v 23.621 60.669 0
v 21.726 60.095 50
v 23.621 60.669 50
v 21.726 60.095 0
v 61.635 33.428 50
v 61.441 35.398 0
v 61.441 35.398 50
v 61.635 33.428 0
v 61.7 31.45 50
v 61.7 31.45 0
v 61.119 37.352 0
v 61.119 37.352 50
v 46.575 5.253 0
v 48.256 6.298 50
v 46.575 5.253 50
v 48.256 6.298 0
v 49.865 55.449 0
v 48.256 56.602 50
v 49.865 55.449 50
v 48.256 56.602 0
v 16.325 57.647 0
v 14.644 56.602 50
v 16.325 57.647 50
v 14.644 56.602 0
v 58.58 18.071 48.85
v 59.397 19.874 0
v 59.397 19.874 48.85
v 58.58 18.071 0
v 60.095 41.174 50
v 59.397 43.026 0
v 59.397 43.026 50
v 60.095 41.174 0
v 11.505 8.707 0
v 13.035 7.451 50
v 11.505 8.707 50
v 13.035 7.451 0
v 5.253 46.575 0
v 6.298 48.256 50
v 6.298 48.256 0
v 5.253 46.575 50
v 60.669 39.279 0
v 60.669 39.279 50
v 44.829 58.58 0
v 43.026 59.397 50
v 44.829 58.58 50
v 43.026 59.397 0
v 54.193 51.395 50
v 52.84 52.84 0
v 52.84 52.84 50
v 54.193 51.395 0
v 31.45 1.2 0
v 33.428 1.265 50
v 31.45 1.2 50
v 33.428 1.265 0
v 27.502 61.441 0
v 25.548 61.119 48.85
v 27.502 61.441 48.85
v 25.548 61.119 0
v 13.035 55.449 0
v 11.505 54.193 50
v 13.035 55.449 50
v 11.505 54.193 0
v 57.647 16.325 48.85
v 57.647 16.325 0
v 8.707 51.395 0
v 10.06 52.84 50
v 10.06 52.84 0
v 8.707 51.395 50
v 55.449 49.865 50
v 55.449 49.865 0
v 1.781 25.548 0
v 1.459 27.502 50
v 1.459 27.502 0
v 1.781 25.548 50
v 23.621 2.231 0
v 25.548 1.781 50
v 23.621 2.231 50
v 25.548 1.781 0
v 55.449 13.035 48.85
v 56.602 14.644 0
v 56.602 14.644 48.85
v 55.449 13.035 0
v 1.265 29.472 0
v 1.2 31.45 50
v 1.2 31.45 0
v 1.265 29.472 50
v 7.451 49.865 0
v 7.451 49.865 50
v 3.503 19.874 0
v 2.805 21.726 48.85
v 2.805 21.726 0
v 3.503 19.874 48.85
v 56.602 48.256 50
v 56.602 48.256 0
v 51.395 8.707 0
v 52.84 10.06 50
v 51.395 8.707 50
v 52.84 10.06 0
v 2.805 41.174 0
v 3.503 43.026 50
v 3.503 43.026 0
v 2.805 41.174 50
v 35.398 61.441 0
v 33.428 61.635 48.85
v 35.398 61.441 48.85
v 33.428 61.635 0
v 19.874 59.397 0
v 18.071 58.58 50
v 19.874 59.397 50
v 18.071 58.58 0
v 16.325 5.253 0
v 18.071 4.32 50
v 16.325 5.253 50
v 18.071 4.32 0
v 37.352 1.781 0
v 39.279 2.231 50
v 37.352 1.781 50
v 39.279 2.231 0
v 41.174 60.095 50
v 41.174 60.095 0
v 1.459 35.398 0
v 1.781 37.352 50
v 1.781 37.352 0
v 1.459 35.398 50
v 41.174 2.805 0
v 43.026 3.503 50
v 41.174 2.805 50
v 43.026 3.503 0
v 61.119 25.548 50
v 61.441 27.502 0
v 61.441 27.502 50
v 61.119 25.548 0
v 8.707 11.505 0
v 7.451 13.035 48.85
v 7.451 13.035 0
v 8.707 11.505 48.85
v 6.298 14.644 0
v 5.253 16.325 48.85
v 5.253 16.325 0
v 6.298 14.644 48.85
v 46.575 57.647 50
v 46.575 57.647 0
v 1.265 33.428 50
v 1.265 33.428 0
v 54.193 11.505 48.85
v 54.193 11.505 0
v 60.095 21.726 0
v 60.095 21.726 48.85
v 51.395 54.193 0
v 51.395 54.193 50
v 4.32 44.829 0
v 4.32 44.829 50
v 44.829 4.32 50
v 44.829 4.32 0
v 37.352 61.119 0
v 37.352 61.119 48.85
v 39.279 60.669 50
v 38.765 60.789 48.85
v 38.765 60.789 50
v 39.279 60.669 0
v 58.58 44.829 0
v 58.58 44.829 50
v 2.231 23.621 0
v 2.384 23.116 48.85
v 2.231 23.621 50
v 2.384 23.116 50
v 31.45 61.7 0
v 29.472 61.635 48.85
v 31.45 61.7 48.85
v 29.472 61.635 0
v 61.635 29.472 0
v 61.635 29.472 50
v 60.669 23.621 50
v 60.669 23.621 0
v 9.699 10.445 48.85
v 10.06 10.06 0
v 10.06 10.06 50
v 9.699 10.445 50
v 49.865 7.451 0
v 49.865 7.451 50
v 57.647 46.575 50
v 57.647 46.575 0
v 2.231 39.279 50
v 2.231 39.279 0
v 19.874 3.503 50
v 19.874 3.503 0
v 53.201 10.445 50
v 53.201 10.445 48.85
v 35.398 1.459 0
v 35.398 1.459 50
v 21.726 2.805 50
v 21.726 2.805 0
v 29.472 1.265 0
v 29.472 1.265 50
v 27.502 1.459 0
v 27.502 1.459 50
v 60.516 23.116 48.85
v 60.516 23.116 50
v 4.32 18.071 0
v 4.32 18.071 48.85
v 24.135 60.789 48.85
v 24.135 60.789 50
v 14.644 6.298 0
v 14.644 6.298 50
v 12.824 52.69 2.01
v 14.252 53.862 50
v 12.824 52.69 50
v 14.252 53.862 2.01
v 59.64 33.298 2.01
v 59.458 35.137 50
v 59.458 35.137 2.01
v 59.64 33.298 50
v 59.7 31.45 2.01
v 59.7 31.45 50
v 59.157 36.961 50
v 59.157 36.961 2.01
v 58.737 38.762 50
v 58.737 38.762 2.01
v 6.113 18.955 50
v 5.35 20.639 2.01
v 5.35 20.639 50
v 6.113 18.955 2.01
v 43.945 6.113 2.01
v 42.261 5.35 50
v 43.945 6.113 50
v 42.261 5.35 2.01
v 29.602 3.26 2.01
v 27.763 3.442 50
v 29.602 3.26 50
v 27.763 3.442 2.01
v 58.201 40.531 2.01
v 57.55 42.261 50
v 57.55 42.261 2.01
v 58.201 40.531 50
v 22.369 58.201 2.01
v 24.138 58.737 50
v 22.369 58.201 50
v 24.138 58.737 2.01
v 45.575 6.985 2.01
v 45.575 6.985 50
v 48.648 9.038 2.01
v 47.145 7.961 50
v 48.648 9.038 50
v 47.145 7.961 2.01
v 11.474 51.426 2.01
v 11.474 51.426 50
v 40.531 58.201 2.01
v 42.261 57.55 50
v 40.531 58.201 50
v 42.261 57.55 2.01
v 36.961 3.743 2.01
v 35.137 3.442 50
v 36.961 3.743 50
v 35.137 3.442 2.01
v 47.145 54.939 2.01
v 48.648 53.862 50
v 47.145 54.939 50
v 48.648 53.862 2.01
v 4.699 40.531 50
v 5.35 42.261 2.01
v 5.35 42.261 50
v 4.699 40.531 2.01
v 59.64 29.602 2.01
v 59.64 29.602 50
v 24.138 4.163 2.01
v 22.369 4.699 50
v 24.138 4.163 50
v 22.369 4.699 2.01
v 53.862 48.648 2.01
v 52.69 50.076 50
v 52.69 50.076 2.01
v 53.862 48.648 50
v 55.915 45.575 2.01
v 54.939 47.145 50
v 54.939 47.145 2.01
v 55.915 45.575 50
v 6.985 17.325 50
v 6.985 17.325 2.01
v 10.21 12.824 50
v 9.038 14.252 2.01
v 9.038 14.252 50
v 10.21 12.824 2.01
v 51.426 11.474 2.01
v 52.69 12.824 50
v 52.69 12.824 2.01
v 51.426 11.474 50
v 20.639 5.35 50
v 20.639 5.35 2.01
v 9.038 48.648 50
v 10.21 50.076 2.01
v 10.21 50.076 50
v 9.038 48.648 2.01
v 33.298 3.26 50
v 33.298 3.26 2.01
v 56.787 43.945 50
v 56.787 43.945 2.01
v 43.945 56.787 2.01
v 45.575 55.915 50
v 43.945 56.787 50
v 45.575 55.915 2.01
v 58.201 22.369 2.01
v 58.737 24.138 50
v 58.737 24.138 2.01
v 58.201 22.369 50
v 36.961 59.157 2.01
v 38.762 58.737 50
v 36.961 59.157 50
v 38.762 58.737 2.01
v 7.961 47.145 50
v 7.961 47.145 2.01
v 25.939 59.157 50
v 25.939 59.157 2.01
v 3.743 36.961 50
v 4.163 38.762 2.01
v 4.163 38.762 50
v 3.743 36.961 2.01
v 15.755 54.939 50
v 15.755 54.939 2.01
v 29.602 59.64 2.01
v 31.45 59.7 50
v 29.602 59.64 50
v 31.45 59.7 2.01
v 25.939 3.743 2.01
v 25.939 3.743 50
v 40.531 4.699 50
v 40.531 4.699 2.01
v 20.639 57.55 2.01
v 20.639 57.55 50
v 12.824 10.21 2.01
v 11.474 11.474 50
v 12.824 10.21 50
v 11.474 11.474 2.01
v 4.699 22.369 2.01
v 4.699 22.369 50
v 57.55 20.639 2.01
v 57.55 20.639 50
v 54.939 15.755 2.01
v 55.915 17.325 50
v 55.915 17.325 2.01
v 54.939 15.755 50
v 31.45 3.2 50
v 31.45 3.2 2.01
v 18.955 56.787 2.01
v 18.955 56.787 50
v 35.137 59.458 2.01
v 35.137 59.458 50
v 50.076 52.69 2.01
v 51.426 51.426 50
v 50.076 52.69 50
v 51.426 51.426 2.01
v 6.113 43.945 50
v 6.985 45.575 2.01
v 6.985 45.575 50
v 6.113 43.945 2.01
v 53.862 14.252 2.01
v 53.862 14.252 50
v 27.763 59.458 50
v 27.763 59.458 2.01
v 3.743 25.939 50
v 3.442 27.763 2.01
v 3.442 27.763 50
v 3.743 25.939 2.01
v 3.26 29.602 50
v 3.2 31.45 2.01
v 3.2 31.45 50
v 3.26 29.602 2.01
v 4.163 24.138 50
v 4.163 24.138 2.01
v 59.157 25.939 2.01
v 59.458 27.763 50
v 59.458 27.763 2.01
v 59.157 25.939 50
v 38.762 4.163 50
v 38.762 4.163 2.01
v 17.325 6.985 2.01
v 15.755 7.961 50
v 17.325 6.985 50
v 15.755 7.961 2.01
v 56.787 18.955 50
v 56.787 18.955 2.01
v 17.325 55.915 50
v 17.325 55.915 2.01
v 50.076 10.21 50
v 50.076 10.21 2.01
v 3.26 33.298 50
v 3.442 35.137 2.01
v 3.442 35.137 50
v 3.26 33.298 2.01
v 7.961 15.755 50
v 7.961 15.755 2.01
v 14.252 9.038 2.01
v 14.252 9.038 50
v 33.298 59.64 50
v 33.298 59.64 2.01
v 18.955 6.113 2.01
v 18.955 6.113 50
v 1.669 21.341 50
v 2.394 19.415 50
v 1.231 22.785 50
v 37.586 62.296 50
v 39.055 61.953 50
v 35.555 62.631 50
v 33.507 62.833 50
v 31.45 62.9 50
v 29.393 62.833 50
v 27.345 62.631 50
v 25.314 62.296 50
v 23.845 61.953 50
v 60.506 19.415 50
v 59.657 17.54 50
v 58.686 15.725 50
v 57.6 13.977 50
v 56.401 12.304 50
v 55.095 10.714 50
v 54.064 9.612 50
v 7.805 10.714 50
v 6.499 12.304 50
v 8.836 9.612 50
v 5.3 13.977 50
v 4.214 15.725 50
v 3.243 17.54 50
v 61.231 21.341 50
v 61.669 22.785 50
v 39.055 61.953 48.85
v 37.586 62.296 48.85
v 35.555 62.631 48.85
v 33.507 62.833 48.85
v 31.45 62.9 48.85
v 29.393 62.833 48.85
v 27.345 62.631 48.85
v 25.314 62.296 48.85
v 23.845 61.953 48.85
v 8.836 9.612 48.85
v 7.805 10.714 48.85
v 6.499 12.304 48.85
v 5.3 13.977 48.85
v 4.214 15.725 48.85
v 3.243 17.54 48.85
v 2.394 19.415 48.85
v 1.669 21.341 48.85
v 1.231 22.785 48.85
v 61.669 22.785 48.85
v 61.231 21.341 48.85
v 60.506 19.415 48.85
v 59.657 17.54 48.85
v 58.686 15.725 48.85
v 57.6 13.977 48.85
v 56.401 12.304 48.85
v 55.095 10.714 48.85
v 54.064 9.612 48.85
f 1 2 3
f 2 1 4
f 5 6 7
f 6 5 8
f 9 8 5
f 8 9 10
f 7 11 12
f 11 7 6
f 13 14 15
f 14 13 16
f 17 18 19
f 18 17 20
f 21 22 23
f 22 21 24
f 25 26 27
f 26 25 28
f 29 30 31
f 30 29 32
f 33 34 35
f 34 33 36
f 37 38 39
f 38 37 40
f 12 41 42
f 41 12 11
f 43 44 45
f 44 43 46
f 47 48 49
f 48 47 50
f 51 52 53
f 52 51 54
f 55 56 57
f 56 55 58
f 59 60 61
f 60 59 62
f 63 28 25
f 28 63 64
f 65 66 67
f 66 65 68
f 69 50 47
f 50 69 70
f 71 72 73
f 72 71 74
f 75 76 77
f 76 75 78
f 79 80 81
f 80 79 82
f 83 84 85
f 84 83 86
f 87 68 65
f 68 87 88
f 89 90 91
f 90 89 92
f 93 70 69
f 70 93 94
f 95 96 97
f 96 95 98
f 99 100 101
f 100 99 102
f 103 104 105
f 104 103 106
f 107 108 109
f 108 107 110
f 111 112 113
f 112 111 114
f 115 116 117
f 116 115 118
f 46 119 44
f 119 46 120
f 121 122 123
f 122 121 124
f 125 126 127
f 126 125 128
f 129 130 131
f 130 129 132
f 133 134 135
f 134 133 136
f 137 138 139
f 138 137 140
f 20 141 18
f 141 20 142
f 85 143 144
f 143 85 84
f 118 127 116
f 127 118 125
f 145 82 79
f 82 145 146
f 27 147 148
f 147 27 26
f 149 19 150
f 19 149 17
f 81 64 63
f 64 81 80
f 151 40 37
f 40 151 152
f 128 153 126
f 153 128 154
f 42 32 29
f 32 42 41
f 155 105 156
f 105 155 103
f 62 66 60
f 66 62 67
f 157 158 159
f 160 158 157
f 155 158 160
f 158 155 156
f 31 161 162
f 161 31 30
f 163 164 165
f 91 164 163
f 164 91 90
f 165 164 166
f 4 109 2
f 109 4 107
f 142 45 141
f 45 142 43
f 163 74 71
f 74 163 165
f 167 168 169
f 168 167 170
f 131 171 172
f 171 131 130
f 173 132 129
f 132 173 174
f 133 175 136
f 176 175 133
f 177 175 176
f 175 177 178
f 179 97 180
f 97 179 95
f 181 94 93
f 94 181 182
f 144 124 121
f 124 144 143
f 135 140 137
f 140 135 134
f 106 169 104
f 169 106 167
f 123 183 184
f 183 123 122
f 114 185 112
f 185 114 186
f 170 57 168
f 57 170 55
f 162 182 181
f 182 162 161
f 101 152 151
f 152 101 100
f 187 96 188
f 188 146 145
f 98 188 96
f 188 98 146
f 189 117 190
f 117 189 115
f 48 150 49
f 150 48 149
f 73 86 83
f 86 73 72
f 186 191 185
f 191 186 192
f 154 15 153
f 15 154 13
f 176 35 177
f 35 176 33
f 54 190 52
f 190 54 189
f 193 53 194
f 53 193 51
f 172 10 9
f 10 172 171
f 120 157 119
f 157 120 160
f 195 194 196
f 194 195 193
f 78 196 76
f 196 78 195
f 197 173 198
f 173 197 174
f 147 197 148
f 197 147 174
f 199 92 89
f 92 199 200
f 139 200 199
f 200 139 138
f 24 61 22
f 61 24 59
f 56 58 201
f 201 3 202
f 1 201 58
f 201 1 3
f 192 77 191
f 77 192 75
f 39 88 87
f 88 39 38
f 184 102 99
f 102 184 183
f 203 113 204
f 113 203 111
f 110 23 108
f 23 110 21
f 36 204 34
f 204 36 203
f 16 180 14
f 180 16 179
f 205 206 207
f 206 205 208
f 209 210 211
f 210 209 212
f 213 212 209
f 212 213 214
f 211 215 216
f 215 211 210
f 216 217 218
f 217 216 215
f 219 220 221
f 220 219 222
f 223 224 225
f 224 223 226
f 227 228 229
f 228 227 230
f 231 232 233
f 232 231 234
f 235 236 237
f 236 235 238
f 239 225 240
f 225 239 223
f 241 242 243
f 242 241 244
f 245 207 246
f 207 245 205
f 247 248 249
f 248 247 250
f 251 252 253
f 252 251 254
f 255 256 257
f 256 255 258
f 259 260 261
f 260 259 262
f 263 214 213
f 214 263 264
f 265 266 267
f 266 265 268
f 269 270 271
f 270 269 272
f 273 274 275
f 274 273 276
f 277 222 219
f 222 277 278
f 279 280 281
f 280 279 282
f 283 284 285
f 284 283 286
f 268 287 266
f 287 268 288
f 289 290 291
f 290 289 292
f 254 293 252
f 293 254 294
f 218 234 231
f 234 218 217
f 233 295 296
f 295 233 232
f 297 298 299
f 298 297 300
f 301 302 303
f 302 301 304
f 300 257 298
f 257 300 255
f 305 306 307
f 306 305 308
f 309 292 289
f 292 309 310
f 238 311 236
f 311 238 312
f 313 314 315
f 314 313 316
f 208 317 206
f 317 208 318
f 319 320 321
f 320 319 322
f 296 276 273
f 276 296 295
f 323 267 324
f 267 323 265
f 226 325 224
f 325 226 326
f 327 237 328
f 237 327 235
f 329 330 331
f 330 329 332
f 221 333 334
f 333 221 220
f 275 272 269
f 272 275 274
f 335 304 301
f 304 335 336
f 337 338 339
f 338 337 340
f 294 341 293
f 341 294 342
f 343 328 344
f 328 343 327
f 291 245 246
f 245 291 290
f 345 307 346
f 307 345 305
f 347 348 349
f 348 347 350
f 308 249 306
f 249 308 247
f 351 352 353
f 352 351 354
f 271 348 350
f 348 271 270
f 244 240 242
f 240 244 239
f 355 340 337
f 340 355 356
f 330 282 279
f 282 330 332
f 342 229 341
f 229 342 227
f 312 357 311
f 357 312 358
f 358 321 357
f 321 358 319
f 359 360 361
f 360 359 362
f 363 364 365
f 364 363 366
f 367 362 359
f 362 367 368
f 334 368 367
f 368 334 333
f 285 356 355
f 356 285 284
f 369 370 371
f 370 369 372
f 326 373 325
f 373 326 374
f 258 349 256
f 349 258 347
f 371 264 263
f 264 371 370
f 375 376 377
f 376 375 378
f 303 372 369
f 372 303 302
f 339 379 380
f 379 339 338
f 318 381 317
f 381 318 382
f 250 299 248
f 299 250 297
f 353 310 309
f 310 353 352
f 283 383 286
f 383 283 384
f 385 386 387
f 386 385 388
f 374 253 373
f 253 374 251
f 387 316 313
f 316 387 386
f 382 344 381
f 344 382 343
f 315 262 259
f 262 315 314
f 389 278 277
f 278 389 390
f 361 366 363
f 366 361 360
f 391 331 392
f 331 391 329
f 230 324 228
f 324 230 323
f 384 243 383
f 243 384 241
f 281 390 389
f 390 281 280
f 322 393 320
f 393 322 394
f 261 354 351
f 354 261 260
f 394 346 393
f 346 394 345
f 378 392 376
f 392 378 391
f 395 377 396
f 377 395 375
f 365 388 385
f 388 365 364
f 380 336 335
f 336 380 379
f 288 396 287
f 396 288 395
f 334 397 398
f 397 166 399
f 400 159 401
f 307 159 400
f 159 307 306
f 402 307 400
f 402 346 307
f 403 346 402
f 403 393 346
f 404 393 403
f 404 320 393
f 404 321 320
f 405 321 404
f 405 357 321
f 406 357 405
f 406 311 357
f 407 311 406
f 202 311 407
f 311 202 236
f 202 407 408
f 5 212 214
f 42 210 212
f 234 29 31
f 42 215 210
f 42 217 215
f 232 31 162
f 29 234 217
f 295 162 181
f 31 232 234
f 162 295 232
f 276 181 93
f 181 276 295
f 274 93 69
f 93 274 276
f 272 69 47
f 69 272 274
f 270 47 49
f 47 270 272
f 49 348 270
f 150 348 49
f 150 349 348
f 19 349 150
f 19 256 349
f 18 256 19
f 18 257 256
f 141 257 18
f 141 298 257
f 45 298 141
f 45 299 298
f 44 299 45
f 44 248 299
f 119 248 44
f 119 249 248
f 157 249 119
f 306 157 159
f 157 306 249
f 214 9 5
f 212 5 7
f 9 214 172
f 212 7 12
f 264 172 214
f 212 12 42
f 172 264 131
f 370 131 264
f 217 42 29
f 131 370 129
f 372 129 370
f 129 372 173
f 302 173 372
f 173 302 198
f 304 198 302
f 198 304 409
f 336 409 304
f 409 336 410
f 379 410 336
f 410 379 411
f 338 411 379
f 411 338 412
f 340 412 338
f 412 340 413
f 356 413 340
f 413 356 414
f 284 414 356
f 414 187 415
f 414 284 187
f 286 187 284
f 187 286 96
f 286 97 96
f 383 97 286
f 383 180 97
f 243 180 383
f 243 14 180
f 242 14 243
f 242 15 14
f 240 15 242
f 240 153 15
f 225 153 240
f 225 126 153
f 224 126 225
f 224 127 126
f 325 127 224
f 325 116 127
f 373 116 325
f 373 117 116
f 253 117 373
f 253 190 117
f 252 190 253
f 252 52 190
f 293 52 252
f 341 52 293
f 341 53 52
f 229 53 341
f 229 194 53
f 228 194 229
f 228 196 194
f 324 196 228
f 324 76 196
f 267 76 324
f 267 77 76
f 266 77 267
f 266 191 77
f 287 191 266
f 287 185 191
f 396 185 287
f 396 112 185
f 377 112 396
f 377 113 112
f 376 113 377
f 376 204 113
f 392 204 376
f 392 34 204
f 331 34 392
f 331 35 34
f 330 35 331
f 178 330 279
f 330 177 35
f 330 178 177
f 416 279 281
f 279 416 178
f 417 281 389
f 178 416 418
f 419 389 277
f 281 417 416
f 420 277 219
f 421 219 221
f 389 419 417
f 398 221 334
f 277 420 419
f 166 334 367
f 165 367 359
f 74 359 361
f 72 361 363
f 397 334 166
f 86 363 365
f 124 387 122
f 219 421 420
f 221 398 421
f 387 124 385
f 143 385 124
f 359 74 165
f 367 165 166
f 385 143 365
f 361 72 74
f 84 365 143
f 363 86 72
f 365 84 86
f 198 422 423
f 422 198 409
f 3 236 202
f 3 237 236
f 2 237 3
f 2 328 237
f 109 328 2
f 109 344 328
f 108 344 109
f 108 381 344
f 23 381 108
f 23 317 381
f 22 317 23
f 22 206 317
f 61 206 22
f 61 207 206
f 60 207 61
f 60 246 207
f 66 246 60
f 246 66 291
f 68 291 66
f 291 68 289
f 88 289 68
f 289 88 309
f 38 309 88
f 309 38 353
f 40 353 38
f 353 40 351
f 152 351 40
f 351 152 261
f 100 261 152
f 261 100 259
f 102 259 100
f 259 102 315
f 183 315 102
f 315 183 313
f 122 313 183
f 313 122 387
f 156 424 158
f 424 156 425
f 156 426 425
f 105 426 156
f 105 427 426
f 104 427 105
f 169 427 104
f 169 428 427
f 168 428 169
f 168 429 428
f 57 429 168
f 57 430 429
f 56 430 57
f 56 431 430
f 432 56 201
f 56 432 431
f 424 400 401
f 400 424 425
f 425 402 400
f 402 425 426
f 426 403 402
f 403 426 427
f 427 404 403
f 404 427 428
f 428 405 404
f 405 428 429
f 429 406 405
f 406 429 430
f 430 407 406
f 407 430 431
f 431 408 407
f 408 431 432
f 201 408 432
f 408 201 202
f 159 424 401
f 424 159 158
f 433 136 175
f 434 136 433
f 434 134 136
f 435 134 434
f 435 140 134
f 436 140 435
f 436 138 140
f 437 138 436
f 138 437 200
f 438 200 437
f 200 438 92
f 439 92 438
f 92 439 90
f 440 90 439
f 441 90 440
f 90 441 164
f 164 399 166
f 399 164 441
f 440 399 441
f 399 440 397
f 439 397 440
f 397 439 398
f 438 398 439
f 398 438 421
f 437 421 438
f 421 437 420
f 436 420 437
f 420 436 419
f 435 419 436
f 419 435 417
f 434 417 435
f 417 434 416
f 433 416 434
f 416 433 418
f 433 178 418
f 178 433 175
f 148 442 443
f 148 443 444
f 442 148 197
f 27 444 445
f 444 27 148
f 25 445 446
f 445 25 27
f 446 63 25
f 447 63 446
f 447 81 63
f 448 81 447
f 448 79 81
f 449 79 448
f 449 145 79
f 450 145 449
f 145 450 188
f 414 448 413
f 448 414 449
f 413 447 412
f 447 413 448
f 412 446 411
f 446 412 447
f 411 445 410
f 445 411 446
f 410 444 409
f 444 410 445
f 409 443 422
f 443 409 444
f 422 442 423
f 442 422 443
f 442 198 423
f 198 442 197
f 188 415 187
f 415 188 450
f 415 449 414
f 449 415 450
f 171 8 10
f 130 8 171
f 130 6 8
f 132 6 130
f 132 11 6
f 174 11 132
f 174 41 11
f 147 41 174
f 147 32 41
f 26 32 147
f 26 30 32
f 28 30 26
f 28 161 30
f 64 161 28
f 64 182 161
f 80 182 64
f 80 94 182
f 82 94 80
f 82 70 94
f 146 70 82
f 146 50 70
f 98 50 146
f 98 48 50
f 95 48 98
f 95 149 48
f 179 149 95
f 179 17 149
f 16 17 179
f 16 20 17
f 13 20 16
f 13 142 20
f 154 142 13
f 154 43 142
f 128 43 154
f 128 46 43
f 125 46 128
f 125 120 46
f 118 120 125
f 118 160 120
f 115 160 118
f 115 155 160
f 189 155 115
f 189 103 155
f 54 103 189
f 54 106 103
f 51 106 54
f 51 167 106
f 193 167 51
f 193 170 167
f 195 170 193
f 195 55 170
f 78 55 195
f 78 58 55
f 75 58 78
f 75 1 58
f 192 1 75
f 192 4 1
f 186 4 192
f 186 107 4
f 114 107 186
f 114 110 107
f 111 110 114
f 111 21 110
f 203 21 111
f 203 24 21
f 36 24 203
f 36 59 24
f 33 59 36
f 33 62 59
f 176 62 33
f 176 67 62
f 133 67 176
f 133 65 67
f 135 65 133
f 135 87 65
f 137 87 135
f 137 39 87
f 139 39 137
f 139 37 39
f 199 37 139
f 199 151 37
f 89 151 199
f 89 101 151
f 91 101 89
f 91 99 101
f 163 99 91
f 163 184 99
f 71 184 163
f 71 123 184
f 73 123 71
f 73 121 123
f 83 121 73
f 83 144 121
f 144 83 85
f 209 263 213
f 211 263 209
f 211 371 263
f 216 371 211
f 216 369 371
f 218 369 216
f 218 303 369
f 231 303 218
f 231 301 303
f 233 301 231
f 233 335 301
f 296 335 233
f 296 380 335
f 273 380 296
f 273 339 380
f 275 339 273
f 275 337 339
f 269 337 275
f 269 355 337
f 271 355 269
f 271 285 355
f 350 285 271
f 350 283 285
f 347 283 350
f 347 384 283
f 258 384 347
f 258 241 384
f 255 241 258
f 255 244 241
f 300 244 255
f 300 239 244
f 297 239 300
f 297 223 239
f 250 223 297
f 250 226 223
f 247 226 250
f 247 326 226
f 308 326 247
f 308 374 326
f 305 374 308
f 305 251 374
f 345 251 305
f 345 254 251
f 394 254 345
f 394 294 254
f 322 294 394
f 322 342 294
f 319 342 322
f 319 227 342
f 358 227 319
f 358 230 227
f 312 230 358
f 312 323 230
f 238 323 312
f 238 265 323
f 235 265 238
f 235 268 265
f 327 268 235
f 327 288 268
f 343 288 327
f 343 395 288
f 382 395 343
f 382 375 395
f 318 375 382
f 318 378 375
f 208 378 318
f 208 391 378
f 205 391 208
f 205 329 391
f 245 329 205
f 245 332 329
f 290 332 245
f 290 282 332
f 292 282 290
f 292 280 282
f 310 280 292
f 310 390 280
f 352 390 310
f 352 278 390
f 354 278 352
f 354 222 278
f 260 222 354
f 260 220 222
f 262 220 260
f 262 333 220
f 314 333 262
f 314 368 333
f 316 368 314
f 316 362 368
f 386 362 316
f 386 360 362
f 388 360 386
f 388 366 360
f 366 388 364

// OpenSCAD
// Generated by scadwright. Do not hand-edit —
// edit the Python source and regenerate.

$fn = 96;

translate([31.45, 31.45, 0]) {
    // BronicaS2RearLensCapSymmetric
    //  cam_barrel_id = 56.5  (default)
    //  cam_barrel_od = 60.5  (default)
    //  cup_od        = 60.5  (default)
    //  cup_wall_thk  = 2  (default)
    //  disc_thk      = 2  (default)
    //  lug_axial     = 1.15  (default)
    //  lug_tube_len  = 7.3  (default)
    //  lugs          = ((90.0, 28.0, 1.2), (210.0, 28.0, 1.2), (330.0, 28.0, 1.2))  (default)
    //  total_h       = 50  (default)
    //  cup_h         = total_h - lug_tube_len = 42.7
    //  cup_tube_len  = cup_h - disc_thk = 40.7
    //  cup_id        = cup_od - 2 * cup_wall_thk = 56.5
    union() {
        translate([0, 0, 2]) {
            // Tube
            //  h  = 40.7  (input)
            //  id = 56.5  (input)
            //  od = 60.5  (input)
            difference() {
                cylinder(h=40.7, r=30.25, center=false);
                translate([0, 0, -0.01]) {
                    scale([1, 1, 1.00049]) {
                        cylinder(h=40.7, r=28.25, center=false);
                    }
                }
            }
        }
        cylinder(h=2.01, r=30.25, center=false);
        translate([0, 0, 42.69]) {
            // CameraMount
            //  barrel_id = 56.5  (input)
            //  length    = 7.31  (input)
            //  lug_axial = 1.15  (input)
            //  lugs      = ((90.0, 28.0, 1.2), (210.0, 28.0, 1.2), (330.0, 28.0, 1.2))  (input)
            //  wall_thk  = 2  (input)
            //  barrel_od = barrel_id + 2 * wall_thk = 60.5
            //  body_or   = barrel_od / 2 = 30.25
            union() {
                // Tube
                //  h  = 7.31  (input)
                //  id = 56.5  (input)
                //  od = 60.5  (input)
                difference() {
                    cylinder(h=7.31, r=30.25, center=false);
                    translate([0, 0, -0.01]) {
                        scale([1, 1, 1.00274]) {
                            cylinder(h=7.31, r=28.25, center=false);
                        }
                    }
                }
                translate([0, 0, 6.16]) {
                    linear_extrude(height=1.15, center=false) {
                        // Arc
                        //  angles  = [76, 104]  (input)
                        //  r       = 30.85  (input)
                        //  width   = 1.2  (input)
                        //  inner_r = r - width / 2 = 30.25
                        //  outer_r = r + width / 2 = 31.45
                        difference() {
                            // Sector
                            //  angles = [76, 104]  (input)
                            //  r      = 31.45  (input)
                            intersection() {
                                circle(r=31.45);
                                polygon(points=[[0, 0], [15.2169, 61.0316], [-15.2169, 61.0316]]);
                            }
                            circle(r=30.25);
                        }
                    }
                }
                translate([0, 0, 6.16]) {
                    linear_extrude(height=1.15, center=false) {
                        // Arc
                        //  angles  = [196, 224]  (input)
                        //  r       = 30.85  (input)
                        //  width   = 1.2  (input)
                        //  inner_r = r - width / 2 = 30.25
                        //  outer_r = r + width / 2 = 31.45
                        difference() {
                            // Sector
                            //  angles = [196, 224]  (input)
                            //  r      = 31.45  (input)
                            intersection() {
                                circle(r=31.45);
                                polygon(points=[[0, 0], [-60.4634, -17.3376], [-45.2465, -43.694]]);
                            }
                            circle(r=30.25);
                        }
                    }
                }
                translate([0, 0, 6.16]) {
                    linear_extrude(height=1.15, center=false) {
                        // Arc
                        //  angles  = [316, 344]  (input)
                        //  r       = 30.85  (input)
                        //  width   = 1.2  (input)
                        //  inner_r = r - width / 2 = 30.25
                        //  outer_r = r + width / 2 = 31.45
                        difference() {
                            // Sector
                            //  angles = [316, 344]  (input)
                            //  r      = 31.45  (input)
                            intersection() {
                                circle(r=31.45);
                                polygon(points=[[0, 0], [45.2465, -43.694], [60.4634, -17.3376]]);
                            }
                            circle(r=30.25);
                        }
                    }
                }
            }
        }
    }
}
